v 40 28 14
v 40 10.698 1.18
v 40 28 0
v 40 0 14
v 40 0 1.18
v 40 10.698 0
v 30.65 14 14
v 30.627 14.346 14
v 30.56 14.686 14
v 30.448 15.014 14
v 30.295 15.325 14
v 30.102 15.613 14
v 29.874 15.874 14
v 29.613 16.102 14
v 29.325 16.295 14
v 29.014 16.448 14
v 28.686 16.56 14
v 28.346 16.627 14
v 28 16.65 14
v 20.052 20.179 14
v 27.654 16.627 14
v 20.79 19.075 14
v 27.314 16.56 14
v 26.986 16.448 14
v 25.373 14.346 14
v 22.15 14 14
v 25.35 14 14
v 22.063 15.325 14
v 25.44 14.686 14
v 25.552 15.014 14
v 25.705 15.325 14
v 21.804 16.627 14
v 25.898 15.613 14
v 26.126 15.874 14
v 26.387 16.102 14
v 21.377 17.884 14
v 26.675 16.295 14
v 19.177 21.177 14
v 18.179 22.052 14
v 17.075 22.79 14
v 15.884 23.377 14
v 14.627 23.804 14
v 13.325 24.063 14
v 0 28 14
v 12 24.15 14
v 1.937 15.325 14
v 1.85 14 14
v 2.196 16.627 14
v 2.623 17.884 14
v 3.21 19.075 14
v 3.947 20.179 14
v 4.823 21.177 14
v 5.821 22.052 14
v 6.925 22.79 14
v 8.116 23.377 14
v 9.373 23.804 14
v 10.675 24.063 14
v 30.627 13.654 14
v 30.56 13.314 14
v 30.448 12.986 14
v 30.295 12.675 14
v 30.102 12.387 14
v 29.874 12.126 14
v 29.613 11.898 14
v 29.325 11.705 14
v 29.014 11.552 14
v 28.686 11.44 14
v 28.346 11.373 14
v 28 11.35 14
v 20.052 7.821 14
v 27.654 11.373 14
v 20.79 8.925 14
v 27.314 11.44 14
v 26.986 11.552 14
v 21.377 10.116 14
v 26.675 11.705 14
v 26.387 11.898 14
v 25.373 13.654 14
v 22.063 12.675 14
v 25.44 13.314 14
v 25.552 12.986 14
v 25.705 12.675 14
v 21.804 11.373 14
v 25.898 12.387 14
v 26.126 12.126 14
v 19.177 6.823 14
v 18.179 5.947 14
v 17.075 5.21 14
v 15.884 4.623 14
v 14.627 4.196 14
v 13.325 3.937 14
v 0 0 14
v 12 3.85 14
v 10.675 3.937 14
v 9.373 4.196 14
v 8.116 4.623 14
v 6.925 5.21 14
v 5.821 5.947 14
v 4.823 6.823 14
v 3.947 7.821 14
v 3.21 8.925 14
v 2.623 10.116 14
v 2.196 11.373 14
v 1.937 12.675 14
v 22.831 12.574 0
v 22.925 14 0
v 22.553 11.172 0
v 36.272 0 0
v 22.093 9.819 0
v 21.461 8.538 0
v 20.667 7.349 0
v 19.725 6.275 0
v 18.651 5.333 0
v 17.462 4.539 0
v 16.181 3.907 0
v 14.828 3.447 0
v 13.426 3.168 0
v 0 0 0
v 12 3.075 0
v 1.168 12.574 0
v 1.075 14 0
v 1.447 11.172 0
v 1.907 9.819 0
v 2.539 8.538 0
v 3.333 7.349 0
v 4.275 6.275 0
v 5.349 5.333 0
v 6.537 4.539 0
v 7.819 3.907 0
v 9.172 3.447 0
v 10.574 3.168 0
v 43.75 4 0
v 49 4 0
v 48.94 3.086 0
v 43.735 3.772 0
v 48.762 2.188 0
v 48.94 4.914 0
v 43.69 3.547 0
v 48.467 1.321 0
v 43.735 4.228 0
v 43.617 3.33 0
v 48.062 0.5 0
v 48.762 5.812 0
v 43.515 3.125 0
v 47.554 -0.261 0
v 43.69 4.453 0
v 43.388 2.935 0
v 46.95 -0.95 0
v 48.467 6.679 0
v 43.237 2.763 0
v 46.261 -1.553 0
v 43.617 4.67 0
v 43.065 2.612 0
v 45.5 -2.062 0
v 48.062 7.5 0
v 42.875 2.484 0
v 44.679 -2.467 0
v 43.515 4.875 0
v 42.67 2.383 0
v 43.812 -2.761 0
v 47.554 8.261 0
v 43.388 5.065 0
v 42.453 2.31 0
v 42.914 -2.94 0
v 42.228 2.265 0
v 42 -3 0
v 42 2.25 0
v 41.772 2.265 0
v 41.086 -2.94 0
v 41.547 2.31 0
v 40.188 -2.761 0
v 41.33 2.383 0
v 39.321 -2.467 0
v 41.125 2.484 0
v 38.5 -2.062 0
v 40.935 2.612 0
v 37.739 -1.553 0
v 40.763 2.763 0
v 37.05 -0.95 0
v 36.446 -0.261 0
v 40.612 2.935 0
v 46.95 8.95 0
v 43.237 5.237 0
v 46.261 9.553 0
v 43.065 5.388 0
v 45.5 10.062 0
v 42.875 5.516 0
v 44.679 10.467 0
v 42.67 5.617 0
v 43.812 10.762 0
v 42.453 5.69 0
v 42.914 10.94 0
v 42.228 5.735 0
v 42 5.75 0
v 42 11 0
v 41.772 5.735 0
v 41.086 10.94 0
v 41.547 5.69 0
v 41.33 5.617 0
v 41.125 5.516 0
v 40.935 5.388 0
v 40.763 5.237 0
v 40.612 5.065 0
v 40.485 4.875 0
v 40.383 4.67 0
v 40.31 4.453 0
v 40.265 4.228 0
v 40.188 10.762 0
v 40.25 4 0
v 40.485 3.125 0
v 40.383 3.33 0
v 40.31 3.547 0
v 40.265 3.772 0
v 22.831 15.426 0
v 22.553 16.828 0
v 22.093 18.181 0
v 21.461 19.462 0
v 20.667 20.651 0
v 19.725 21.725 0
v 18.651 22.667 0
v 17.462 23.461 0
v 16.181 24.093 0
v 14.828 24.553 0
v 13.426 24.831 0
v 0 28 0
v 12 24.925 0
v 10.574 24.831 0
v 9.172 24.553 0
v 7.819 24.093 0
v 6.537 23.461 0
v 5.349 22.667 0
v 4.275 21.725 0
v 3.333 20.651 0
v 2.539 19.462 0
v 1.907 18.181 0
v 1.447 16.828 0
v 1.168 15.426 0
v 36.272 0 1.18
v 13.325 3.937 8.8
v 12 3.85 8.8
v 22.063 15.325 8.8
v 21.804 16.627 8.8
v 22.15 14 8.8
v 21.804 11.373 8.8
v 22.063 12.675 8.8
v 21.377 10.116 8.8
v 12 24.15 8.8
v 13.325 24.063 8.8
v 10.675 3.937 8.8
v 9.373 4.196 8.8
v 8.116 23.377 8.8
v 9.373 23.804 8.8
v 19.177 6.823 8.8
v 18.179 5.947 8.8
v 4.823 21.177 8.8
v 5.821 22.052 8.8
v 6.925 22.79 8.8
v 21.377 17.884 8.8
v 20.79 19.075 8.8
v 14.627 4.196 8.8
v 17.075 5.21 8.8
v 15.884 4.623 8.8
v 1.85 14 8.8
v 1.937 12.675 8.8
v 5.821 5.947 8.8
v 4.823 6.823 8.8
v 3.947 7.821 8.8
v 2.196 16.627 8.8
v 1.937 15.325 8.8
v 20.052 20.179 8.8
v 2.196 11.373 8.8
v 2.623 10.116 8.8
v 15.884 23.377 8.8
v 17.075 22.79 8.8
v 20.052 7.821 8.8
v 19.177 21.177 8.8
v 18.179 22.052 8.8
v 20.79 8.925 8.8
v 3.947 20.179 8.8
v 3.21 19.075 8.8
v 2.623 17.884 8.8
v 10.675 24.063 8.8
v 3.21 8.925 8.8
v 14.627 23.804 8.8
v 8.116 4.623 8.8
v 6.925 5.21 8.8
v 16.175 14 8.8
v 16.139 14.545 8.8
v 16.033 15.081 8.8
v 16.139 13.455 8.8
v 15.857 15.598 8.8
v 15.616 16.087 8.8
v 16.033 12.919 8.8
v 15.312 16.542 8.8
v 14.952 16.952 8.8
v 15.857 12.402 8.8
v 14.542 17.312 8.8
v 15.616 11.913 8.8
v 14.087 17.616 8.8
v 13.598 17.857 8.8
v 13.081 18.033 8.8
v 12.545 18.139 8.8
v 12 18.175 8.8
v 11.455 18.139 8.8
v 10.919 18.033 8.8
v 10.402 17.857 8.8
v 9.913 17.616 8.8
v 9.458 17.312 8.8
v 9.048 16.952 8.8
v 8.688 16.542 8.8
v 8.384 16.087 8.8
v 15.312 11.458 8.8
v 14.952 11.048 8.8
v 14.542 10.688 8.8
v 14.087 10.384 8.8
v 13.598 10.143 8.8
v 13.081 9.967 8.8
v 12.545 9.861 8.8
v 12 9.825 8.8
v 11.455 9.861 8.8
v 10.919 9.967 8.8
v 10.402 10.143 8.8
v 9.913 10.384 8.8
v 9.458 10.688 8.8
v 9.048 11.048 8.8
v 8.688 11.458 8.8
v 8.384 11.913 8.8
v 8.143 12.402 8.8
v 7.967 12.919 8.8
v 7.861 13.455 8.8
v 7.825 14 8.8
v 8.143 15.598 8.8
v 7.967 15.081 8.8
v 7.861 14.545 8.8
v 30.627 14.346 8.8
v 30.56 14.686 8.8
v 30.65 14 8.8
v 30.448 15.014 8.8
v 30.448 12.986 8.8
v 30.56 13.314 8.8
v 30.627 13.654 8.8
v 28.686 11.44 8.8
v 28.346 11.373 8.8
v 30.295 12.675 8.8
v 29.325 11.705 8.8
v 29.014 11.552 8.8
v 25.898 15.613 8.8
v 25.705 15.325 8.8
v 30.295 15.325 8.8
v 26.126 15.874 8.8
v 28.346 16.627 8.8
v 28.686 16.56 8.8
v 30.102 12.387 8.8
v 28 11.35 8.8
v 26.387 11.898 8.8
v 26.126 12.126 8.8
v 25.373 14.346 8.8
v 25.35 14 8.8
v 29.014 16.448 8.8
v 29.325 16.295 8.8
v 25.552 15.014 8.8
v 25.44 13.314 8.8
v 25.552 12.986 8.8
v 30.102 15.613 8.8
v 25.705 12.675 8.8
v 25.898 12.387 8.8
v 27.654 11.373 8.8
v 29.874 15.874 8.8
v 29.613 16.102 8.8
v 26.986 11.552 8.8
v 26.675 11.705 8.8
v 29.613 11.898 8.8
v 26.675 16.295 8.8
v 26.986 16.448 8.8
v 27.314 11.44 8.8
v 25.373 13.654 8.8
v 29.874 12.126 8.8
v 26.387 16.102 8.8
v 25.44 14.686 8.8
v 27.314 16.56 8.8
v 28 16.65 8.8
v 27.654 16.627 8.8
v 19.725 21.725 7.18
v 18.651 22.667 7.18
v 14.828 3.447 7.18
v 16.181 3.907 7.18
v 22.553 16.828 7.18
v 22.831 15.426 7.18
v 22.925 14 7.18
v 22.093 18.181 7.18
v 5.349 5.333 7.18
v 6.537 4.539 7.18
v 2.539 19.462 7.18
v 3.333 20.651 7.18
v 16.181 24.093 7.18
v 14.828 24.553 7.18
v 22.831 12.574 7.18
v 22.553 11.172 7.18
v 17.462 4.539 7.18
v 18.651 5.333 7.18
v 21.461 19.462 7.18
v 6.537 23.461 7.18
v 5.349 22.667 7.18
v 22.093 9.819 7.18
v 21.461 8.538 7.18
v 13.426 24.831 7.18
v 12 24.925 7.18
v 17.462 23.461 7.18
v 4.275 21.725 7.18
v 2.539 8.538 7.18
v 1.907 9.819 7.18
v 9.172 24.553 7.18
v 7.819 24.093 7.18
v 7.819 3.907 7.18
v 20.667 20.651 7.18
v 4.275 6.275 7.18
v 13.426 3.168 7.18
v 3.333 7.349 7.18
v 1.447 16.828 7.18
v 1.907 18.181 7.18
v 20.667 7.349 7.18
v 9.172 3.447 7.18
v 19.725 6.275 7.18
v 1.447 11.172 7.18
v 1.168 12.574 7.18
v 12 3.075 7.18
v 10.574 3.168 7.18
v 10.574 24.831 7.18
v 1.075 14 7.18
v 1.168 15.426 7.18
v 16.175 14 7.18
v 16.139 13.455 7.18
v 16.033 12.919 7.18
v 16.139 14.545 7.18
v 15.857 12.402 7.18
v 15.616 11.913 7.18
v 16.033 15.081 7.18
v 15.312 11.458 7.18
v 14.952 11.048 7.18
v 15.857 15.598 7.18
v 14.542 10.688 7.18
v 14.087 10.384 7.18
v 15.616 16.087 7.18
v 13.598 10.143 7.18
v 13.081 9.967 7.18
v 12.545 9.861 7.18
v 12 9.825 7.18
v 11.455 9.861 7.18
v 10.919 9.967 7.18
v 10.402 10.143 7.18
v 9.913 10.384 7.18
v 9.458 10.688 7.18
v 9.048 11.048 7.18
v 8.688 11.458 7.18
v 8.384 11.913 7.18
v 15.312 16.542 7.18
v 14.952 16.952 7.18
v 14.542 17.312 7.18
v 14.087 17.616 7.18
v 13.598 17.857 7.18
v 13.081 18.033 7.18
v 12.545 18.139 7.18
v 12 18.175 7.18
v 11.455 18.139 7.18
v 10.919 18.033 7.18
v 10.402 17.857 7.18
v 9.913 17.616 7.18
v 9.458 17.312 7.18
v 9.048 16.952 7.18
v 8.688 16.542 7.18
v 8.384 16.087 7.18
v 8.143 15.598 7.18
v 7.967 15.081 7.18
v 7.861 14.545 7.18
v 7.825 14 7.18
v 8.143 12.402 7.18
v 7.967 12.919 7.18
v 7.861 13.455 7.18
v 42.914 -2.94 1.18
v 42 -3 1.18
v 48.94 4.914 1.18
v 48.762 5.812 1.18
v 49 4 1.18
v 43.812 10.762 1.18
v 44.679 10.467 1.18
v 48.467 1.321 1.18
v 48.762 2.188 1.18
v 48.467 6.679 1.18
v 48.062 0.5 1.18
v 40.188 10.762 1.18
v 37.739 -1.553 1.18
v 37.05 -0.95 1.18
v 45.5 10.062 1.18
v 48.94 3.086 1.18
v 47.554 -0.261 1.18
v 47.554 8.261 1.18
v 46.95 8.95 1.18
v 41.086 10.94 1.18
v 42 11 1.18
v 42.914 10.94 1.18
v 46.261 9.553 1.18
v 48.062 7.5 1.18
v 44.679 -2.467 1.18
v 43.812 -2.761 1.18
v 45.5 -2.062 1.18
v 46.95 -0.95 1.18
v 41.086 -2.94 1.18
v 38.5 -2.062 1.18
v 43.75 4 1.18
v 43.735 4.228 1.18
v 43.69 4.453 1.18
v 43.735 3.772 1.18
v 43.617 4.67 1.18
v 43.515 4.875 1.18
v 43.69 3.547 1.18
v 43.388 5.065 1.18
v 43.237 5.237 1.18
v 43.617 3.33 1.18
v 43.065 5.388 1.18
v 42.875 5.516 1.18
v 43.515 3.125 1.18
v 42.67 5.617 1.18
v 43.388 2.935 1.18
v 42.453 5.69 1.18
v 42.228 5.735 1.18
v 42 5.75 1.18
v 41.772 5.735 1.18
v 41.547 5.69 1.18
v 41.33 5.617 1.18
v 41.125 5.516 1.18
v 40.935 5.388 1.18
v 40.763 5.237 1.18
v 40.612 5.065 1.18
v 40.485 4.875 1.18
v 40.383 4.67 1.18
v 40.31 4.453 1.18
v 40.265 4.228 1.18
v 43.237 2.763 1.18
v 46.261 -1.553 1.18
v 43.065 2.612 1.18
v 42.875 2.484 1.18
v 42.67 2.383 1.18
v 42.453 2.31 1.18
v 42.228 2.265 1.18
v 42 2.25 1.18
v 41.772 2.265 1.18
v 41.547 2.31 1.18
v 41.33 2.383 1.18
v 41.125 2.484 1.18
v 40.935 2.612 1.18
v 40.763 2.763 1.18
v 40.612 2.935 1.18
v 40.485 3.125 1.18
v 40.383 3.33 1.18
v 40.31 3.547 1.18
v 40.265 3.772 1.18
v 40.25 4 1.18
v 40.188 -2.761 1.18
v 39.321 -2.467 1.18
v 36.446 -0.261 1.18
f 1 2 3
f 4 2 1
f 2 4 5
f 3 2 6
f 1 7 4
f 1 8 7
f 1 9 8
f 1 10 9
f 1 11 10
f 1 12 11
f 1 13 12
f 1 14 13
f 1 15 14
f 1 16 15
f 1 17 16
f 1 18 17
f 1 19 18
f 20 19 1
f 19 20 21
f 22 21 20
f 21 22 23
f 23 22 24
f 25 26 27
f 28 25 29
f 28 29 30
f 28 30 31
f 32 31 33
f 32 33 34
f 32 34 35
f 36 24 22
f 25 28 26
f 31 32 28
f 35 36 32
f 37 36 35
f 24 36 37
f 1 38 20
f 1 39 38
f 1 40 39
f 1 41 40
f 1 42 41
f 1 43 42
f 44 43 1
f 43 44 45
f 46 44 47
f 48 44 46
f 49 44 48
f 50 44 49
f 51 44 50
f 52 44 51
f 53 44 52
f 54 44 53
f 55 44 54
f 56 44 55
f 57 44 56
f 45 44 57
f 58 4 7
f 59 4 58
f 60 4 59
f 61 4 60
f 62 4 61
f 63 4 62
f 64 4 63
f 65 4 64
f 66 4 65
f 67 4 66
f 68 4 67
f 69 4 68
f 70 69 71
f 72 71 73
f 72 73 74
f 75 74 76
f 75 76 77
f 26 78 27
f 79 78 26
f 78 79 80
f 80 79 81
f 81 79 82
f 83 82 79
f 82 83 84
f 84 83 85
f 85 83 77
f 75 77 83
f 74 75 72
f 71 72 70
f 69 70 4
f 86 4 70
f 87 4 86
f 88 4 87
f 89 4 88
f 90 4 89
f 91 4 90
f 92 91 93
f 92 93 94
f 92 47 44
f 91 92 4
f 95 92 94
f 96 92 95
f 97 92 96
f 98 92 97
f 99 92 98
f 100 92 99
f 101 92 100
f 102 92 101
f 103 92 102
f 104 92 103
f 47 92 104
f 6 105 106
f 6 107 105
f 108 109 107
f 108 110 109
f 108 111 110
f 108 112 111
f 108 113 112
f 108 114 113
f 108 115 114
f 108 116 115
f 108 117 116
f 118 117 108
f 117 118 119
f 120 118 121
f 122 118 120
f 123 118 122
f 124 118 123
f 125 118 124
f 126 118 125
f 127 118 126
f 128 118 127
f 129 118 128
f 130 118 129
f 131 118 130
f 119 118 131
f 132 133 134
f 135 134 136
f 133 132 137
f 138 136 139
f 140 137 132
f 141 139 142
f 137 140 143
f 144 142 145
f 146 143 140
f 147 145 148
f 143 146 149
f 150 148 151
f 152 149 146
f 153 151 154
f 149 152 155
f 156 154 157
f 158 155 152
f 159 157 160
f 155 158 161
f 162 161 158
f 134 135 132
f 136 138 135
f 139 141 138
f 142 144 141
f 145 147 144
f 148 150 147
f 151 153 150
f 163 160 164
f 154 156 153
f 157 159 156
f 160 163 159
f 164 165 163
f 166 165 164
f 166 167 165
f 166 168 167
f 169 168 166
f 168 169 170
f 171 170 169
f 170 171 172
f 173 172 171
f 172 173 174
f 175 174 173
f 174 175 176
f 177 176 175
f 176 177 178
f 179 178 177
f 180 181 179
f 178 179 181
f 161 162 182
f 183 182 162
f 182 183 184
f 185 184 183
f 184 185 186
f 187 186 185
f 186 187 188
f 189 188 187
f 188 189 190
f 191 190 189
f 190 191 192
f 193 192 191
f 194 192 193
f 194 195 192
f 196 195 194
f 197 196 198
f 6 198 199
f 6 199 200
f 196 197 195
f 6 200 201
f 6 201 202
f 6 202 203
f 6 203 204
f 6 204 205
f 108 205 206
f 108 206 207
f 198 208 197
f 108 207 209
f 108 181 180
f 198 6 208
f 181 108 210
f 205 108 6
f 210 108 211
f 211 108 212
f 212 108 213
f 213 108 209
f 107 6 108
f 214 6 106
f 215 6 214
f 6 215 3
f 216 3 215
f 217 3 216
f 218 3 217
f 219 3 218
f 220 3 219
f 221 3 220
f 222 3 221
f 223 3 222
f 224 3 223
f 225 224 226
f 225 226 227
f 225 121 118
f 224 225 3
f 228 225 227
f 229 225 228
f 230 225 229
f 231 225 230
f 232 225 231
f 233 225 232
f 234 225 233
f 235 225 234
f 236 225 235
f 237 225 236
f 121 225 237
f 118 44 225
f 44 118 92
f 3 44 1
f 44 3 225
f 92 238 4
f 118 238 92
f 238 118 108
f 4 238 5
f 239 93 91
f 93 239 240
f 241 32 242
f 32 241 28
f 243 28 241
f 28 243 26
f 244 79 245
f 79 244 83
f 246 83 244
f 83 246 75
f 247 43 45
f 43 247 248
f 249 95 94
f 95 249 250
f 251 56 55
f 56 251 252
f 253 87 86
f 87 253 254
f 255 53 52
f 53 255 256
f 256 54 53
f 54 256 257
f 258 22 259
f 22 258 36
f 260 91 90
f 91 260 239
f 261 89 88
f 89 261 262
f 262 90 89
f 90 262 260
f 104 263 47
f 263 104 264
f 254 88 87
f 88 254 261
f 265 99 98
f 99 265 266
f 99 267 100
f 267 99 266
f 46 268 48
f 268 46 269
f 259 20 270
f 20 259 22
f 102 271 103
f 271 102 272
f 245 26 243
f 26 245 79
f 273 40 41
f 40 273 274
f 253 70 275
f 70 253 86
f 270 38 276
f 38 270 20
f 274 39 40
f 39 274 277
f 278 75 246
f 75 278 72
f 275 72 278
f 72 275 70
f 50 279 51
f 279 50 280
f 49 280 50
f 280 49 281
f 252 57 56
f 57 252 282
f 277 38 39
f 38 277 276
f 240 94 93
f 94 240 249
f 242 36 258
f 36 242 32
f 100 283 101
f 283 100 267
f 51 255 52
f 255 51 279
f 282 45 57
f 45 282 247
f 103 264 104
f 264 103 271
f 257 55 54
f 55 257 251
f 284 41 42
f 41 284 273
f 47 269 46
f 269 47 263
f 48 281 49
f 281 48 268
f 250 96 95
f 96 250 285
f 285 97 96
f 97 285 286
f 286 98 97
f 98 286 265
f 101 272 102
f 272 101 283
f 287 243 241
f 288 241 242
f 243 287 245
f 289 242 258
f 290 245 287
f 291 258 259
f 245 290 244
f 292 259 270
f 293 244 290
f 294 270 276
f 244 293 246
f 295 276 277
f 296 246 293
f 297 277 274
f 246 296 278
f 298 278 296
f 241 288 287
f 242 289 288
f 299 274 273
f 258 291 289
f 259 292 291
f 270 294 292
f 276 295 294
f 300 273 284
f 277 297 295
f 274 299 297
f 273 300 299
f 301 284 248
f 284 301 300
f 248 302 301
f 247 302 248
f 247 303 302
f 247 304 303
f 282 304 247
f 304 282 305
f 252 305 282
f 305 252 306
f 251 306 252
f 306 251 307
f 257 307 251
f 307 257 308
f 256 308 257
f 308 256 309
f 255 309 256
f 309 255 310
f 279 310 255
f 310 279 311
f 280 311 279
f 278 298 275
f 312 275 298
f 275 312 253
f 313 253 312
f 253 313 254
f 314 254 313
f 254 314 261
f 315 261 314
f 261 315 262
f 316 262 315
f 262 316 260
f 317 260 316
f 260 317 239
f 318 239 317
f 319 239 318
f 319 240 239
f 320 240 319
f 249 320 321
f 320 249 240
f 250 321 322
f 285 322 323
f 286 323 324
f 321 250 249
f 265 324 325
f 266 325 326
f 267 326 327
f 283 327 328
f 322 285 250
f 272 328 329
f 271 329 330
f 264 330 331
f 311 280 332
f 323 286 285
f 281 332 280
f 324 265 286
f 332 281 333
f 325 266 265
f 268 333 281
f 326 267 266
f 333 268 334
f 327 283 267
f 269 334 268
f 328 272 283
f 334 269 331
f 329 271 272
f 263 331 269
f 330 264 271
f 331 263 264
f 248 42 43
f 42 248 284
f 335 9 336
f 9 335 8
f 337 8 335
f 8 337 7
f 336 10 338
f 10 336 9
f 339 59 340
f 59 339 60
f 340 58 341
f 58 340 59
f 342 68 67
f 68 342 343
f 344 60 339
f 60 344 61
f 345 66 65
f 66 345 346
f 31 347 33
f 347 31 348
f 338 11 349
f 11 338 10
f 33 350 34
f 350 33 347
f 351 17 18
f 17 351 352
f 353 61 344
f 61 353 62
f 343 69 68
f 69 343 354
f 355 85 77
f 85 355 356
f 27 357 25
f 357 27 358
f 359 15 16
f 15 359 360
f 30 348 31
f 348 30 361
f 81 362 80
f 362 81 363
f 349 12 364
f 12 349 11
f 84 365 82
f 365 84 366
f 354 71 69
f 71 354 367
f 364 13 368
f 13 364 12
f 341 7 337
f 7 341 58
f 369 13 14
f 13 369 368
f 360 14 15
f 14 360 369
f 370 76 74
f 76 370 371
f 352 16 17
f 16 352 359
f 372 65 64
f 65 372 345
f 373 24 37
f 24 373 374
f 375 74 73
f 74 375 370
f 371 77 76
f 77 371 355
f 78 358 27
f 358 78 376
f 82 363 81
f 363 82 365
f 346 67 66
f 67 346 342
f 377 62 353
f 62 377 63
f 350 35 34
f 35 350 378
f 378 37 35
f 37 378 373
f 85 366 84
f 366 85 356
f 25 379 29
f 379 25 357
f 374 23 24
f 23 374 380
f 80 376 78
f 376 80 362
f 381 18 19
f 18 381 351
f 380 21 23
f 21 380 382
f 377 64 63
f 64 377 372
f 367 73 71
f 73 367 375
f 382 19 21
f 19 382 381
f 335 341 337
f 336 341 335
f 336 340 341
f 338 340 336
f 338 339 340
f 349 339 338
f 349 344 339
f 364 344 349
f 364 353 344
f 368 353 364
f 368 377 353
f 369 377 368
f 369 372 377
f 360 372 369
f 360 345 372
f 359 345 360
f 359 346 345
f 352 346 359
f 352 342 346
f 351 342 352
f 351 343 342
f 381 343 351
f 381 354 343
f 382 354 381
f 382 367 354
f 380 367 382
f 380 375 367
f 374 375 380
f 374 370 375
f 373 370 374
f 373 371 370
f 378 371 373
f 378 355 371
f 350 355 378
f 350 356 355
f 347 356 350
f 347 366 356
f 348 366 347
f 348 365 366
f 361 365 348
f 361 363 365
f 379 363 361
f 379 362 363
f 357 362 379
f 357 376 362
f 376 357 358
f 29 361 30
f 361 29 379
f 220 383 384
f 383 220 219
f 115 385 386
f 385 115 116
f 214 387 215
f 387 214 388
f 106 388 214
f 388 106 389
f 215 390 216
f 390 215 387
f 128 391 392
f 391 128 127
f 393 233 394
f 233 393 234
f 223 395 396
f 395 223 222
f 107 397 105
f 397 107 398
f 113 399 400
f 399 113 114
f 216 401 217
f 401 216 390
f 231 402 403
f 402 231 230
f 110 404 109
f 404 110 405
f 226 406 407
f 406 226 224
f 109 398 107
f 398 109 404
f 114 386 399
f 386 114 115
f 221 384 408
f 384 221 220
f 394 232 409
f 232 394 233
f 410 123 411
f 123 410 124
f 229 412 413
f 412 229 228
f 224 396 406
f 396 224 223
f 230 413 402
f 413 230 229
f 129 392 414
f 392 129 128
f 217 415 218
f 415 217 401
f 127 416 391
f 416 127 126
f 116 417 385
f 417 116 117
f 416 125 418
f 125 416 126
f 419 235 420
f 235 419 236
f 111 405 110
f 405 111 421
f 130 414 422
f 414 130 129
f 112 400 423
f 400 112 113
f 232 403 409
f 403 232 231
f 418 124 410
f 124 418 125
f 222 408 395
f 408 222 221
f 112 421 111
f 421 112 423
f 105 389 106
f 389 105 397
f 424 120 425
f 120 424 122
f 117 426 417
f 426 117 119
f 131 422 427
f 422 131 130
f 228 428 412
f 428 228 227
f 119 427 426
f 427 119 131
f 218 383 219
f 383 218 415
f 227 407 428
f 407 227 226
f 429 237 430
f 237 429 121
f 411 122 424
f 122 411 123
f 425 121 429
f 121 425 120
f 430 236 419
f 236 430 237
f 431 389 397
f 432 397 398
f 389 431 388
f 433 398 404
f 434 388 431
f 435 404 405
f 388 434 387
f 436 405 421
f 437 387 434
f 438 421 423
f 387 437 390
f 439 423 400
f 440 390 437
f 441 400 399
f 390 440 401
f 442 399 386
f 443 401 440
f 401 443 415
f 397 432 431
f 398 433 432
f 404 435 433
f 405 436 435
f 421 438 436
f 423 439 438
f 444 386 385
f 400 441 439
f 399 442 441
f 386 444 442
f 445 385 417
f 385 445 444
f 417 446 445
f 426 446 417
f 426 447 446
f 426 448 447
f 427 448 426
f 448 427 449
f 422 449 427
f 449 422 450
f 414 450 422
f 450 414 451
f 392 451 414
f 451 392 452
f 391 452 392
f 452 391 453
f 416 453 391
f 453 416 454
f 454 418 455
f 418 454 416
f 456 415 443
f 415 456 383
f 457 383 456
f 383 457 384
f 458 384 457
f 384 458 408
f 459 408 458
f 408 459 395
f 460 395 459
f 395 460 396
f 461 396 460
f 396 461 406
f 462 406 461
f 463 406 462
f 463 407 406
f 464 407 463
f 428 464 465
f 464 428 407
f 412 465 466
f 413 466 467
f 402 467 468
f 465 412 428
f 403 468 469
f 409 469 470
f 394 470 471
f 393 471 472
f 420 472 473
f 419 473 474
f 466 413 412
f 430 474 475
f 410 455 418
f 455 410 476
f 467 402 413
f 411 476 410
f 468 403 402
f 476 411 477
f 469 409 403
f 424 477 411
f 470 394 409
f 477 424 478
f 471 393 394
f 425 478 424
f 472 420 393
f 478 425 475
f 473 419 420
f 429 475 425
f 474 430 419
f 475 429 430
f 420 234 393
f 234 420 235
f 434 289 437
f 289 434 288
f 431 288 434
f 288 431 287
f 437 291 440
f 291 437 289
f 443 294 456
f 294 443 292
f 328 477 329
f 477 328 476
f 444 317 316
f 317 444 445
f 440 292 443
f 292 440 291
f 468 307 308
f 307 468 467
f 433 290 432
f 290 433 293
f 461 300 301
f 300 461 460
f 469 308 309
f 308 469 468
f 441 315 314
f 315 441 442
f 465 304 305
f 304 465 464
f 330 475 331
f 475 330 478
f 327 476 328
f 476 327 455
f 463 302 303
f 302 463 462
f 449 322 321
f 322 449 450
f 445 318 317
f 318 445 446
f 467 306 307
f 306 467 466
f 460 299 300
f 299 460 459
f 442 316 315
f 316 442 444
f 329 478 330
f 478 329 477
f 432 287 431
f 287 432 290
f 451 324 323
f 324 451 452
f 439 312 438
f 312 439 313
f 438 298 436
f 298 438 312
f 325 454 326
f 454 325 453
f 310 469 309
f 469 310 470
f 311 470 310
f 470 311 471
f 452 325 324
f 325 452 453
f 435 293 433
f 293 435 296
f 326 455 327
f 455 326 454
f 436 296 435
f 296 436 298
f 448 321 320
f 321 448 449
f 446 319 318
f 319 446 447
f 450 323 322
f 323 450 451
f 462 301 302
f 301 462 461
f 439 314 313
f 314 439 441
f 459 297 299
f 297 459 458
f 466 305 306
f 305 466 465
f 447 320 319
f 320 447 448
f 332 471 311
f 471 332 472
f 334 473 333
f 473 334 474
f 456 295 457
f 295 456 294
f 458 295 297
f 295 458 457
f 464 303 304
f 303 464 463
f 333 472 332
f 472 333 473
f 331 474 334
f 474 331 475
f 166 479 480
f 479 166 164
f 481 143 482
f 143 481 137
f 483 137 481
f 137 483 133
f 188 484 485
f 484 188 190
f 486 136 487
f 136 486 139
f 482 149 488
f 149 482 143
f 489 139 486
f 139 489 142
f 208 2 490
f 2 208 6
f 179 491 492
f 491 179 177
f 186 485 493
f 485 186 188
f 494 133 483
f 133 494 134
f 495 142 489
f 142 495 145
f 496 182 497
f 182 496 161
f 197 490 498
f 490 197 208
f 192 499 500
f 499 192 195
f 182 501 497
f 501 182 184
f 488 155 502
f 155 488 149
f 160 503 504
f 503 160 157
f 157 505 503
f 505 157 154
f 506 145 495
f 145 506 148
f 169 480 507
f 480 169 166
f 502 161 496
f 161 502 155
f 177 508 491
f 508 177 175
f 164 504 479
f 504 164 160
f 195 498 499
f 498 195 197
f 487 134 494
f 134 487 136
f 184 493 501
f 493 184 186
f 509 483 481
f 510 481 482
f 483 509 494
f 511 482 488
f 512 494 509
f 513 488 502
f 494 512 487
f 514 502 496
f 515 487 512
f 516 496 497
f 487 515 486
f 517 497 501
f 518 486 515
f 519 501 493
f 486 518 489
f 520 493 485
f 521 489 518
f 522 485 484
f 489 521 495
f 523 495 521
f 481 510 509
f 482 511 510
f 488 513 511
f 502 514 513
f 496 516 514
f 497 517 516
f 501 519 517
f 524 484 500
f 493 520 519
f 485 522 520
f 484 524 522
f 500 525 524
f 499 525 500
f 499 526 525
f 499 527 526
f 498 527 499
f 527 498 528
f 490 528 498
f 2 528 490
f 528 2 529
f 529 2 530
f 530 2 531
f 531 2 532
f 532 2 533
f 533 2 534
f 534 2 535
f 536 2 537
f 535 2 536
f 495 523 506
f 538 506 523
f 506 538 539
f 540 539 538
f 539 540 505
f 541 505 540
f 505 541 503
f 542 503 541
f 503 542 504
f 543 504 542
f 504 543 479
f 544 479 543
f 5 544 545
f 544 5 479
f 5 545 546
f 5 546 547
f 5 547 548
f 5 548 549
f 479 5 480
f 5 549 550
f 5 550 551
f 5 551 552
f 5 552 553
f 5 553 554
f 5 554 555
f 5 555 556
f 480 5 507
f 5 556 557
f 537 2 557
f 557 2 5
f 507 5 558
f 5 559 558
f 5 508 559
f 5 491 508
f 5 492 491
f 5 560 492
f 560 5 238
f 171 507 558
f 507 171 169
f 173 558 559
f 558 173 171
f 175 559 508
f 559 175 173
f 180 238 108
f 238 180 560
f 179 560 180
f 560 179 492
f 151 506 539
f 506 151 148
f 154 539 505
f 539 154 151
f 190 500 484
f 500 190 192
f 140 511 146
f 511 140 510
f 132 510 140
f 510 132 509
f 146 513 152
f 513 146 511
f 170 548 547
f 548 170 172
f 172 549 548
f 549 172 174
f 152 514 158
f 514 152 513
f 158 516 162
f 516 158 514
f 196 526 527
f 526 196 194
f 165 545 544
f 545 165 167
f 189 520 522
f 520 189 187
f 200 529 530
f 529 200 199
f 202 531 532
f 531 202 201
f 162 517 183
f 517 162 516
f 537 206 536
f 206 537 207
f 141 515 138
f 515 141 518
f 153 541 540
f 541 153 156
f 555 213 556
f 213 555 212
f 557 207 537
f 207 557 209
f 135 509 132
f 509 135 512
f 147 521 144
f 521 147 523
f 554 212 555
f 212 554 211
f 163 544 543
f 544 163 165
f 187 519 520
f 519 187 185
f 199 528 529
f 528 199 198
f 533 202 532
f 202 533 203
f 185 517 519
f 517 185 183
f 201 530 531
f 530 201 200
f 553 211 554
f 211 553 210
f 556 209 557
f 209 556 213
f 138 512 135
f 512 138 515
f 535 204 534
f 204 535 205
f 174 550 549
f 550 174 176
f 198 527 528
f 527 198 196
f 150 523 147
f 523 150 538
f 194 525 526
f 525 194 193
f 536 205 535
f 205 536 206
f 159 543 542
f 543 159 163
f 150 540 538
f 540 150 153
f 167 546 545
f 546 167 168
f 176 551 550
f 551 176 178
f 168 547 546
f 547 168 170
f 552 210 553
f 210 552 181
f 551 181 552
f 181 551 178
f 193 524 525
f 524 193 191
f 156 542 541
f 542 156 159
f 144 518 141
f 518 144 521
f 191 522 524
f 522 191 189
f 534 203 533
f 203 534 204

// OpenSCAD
// file: parameters.scad
// =============================================================================
// Gen-AG Vernier flux-claw hyper-nano — WOUND-AWARE (HARD GATE)
// Improve Gen-AG: tighter m2m 5.11, more copper (165 t), run_clear 0.55
// =============================================================================

wire_awg            = 26;
wire_od             = 0.45;
turns               = 165;      // +10 vs Gen-AG 155
fill                = 0.70;
layers_per_face     = 2;
wind_build_axial    = layers_per_face * wire_od * fill;   // 0.63
wind_build_radial   = 3 * wire_od * fill;                 // 0.945

coil_id_r           = 19.5;
coil_od_r           = 63.0;
span_deg            = 25.0;     // 12 stations; vernier vs 16-pole equiv
former_web          = 1.55;
flange_t            = 0.60;
wall                = 1.2;
slot_w              = 2.4;
mount_hole          = 3.5;
tab_len             = 7.0;

former_bare_h       = former_web + 2 * flange_t;            // 2.75
coil_envelope_h     = former_bare_h + 2 * wind_build_axial; // 4.01

run_clear           = 0.55;
gap_spacer_h        = run_clear + wind_build_axial;         // 1.18
m2m                 = coil_envelope_h + 2 * run_clear;      // 5.11 (beats Gen-AG 5.46)

coil_stations       = 12;
bay_r_in            = coil_id_r - 2.0 - wind_build_radial;
bay_r_out           = coil_od_r + 2.0 + wind_build_radial;
bay_span            = span_deg + 4.0;
bay_offset          = 2.0;
stator_thick        = former_bare_h;
stator_od           = 156.0;
shaft_clear_stator  = 36.0;
coil_mount_r        = 28.0;

// Dual rotors: 8+8 Ø20 vernier poles + 24+24 Ø5 flux claws / edge assists
large_pocket_d      = 20.3;
small_pocket_d      = 5.3;
pocket_h            = 5.2;
large_n             = 8;
R_large             = 50.0;
R_small_inner       = 36.0;     // claw inner
R_small_mid         = 50.0;
R_small_outer       = 64.0;
carrier_od          = 152.0;
carrier_thick       = 7.5;
hub_h               = 10.0;
hub_od              = 30.0;
rotor_b_offset_deg  = 22.5;     // vernier offset

shaft_bore          = 8.35;
bearing_d           = 21.85;
bearing_h           = 7.2;
m3_clear            = 3.5;
bolt_r_inner        = 36.0;
bolt_n_inner        = 6;
flange_bolt_r       = 72.0;
flange_bolt_n       = 6;
brace_r             = 68.0;
brace_d             = 4.3;
brace_n             = 4;

spacer_pad_od       = 14.0;
spacer_pad_id       = m3_clear;
endbell_od          = 156.0;
endbell_thick       = 8.0;
endbell_shaft_clear = 10.0;

$fn = 64;
// main file
// Gen-AG fit coupon — magnet pockets + 608 + spacer height
include <parameters.scad>;
$fn = 48;
block_w = 40; block_d = 28; block_h = 14;
difference() {
    cube([block_w, block_d, block_h]);
    translate([12, block_d/2, block_h - pocket_h])
        cylinder(d=large_pocket_d, h=pocket_h + 0.2);
    translate([28, block_d/2, block_h - pocket_h])
        cylinder(d=small_pocket_d, h=pocket_h + 0.2);
    translate([12, block_d/2, -0.02])
        cylinder(d=bearing_d, h=bearing_h);
    translate([12, block_d/2, -0.1])
        cylinder(d=shaft_bore, h=block_h + 1);
}
translate([block_w + 2, 4, 0])
    difference() {
        cylinder(d=spacer_pad_od, h=gap_spacer_h);
        translate([0, 0, -0.1]) cylinder(d=spacer_pad_id, h=gap_spacer_h + 0.2);
    }
